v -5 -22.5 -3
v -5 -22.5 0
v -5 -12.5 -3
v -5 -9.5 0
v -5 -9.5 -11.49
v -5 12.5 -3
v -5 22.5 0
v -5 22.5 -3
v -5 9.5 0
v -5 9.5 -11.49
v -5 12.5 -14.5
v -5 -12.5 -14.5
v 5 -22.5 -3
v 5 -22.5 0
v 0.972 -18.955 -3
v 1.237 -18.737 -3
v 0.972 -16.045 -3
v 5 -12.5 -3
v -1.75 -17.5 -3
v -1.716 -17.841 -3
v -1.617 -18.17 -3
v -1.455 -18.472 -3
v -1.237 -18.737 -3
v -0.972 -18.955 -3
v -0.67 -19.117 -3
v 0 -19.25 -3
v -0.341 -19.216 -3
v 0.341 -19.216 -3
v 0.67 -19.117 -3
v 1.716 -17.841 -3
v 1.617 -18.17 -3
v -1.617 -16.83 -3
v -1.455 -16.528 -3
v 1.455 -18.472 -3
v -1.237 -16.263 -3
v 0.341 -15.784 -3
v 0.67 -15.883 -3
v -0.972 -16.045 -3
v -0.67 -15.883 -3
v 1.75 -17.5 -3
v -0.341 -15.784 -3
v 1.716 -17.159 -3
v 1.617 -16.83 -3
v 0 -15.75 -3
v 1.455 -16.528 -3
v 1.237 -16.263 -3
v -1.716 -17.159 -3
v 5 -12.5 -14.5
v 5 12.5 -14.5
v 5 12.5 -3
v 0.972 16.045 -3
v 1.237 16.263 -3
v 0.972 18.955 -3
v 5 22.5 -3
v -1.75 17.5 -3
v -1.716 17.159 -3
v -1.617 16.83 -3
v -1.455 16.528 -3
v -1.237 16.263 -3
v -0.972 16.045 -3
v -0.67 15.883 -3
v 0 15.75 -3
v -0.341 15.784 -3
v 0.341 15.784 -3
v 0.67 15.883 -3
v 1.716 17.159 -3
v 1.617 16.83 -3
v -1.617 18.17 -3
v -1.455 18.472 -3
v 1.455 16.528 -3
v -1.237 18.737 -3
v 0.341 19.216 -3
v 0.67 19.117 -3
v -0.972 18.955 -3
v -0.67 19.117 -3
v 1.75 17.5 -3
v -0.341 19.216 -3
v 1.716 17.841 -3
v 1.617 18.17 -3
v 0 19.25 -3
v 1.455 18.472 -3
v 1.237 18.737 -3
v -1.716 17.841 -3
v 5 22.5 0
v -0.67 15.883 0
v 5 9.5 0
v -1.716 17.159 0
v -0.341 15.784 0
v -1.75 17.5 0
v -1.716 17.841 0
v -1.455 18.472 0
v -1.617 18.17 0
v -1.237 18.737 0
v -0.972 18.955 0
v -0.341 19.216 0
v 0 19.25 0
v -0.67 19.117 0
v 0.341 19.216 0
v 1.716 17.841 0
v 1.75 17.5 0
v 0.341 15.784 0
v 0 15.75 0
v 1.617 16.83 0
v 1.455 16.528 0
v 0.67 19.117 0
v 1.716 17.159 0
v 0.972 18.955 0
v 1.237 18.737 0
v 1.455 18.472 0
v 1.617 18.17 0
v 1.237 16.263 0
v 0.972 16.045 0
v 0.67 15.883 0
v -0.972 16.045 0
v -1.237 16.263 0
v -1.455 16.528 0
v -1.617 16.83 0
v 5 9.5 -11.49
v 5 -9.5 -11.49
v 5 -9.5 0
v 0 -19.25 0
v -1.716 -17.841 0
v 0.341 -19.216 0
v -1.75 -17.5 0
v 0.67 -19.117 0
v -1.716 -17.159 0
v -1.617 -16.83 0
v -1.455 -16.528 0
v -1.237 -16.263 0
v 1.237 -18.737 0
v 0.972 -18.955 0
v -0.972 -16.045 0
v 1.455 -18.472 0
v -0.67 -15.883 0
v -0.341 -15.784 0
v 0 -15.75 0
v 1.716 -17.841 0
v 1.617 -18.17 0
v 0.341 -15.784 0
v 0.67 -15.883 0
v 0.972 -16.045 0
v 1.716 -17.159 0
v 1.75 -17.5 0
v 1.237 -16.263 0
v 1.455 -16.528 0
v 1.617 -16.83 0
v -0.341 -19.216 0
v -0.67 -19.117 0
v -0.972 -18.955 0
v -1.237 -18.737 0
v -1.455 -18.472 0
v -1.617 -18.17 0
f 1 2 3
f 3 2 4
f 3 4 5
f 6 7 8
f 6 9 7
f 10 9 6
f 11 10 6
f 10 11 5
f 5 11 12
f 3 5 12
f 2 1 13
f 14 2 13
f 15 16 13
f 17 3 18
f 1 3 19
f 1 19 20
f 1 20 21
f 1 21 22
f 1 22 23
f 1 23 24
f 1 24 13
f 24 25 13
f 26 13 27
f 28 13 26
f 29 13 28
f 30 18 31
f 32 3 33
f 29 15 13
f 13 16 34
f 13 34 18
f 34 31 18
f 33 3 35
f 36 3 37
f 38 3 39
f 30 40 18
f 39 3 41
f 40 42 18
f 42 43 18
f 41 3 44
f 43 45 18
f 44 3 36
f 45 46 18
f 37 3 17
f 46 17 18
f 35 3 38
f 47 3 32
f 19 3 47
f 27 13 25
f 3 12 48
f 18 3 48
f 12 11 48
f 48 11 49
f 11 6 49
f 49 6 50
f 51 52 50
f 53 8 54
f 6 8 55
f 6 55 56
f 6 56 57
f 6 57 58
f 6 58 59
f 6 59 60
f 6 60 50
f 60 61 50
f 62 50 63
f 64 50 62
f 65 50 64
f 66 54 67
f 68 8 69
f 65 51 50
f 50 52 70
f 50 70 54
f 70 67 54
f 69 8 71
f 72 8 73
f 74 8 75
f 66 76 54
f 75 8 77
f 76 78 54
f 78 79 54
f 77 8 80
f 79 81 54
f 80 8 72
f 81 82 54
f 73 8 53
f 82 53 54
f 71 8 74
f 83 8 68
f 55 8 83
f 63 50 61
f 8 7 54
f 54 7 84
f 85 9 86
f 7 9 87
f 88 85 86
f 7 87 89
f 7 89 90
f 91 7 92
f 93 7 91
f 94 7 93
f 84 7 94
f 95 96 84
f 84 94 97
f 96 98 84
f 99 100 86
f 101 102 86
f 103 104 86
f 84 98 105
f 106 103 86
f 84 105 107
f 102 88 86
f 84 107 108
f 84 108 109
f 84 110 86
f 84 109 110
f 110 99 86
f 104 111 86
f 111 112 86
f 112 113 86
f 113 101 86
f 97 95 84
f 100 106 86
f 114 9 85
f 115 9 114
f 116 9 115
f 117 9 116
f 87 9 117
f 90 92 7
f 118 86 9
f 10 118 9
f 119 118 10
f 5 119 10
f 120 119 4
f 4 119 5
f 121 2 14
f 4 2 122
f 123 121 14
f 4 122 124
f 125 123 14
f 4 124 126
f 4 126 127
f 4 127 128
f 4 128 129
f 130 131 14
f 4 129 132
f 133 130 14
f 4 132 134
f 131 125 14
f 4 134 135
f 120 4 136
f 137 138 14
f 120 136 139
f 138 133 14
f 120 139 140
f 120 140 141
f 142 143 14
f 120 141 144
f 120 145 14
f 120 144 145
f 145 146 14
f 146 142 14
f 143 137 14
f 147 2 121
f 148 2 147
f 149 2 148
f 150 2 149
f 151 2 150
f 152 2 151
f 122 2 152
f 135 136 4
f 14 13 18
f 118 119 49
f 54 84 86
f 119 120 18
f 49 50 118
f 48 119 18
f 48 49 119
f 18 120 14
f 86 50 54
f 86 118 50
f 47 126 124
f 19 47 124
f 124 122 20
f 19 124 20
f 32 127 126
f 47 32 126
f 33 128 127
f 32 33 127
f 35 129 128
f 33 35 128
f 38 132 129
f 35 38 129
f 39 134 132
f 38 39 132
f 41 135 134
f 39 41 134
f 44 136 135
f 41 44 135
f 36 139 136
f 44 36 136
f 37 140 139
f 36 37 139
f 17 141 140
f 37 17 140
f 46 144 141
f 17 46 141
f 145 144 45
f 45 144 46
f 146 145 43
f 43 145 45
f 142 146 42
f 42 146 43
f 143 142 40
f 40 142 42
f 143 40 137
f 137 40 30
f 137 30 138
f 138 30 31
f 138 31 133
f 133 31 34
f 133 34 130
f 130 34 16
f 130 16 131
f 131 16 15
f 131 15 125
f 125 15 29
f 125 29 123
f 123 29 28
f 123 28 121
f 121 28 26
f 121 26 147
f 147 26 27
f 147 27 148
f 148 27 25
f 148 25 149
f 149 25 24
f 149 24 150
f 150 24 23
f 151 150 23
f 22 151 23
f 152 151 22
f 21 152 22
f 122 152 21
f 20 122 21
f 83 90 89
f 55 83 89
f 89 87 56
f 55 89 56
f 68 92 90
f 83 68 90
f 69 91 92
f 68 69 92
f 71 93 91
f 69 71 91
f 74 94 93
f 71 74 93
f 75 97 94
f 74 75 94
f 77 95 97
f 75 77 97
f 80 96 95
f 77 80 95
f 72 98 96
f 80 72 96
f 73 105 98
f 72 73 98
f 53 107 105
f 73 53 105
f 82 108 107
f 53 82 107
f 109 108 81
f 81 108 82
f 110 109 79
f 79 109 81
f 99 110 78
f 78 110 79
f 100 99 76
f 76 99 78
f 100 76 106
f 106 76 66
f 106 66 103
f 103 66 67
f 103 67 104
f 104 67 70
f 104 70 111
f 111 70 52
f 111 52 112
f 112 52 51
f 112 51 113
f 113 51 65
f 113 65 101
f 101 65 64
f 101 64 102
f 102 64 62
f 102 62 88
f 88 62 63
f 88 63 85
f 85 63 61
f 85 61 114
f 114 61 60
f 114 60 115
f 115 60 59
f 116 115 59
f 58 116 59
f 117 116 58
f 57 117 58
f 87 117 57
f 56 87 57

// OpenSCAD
$fn=32;

%translate([0, 0, -(12)/2+.5]) cube([50, 18+1, 12], center=true);

difference() {
  union() {
    translate([0, 0, -3/2]) cube([10, 34+3+4*2, 3], center=true);
    translate([0, 0, -(12-.5+3)/2]) cube([10, 18+1+3*2, 12-.5+3], center=true);
  }
  translate([0, 0, -(12-.5)/2+0.01]) cube([50, 18+1, 12-.5], center=true);
  translate([0, -17.5, 0]) cylinder(r=3.5/2, h=50, center=true);
  translate([0, 17.5, 0]) cylinder(r=3.5/2, h=50, center=true);
}
%translate([0, (18+1)/2+10/2+3]) cylinder(r=10/2, h=10, center=true);
